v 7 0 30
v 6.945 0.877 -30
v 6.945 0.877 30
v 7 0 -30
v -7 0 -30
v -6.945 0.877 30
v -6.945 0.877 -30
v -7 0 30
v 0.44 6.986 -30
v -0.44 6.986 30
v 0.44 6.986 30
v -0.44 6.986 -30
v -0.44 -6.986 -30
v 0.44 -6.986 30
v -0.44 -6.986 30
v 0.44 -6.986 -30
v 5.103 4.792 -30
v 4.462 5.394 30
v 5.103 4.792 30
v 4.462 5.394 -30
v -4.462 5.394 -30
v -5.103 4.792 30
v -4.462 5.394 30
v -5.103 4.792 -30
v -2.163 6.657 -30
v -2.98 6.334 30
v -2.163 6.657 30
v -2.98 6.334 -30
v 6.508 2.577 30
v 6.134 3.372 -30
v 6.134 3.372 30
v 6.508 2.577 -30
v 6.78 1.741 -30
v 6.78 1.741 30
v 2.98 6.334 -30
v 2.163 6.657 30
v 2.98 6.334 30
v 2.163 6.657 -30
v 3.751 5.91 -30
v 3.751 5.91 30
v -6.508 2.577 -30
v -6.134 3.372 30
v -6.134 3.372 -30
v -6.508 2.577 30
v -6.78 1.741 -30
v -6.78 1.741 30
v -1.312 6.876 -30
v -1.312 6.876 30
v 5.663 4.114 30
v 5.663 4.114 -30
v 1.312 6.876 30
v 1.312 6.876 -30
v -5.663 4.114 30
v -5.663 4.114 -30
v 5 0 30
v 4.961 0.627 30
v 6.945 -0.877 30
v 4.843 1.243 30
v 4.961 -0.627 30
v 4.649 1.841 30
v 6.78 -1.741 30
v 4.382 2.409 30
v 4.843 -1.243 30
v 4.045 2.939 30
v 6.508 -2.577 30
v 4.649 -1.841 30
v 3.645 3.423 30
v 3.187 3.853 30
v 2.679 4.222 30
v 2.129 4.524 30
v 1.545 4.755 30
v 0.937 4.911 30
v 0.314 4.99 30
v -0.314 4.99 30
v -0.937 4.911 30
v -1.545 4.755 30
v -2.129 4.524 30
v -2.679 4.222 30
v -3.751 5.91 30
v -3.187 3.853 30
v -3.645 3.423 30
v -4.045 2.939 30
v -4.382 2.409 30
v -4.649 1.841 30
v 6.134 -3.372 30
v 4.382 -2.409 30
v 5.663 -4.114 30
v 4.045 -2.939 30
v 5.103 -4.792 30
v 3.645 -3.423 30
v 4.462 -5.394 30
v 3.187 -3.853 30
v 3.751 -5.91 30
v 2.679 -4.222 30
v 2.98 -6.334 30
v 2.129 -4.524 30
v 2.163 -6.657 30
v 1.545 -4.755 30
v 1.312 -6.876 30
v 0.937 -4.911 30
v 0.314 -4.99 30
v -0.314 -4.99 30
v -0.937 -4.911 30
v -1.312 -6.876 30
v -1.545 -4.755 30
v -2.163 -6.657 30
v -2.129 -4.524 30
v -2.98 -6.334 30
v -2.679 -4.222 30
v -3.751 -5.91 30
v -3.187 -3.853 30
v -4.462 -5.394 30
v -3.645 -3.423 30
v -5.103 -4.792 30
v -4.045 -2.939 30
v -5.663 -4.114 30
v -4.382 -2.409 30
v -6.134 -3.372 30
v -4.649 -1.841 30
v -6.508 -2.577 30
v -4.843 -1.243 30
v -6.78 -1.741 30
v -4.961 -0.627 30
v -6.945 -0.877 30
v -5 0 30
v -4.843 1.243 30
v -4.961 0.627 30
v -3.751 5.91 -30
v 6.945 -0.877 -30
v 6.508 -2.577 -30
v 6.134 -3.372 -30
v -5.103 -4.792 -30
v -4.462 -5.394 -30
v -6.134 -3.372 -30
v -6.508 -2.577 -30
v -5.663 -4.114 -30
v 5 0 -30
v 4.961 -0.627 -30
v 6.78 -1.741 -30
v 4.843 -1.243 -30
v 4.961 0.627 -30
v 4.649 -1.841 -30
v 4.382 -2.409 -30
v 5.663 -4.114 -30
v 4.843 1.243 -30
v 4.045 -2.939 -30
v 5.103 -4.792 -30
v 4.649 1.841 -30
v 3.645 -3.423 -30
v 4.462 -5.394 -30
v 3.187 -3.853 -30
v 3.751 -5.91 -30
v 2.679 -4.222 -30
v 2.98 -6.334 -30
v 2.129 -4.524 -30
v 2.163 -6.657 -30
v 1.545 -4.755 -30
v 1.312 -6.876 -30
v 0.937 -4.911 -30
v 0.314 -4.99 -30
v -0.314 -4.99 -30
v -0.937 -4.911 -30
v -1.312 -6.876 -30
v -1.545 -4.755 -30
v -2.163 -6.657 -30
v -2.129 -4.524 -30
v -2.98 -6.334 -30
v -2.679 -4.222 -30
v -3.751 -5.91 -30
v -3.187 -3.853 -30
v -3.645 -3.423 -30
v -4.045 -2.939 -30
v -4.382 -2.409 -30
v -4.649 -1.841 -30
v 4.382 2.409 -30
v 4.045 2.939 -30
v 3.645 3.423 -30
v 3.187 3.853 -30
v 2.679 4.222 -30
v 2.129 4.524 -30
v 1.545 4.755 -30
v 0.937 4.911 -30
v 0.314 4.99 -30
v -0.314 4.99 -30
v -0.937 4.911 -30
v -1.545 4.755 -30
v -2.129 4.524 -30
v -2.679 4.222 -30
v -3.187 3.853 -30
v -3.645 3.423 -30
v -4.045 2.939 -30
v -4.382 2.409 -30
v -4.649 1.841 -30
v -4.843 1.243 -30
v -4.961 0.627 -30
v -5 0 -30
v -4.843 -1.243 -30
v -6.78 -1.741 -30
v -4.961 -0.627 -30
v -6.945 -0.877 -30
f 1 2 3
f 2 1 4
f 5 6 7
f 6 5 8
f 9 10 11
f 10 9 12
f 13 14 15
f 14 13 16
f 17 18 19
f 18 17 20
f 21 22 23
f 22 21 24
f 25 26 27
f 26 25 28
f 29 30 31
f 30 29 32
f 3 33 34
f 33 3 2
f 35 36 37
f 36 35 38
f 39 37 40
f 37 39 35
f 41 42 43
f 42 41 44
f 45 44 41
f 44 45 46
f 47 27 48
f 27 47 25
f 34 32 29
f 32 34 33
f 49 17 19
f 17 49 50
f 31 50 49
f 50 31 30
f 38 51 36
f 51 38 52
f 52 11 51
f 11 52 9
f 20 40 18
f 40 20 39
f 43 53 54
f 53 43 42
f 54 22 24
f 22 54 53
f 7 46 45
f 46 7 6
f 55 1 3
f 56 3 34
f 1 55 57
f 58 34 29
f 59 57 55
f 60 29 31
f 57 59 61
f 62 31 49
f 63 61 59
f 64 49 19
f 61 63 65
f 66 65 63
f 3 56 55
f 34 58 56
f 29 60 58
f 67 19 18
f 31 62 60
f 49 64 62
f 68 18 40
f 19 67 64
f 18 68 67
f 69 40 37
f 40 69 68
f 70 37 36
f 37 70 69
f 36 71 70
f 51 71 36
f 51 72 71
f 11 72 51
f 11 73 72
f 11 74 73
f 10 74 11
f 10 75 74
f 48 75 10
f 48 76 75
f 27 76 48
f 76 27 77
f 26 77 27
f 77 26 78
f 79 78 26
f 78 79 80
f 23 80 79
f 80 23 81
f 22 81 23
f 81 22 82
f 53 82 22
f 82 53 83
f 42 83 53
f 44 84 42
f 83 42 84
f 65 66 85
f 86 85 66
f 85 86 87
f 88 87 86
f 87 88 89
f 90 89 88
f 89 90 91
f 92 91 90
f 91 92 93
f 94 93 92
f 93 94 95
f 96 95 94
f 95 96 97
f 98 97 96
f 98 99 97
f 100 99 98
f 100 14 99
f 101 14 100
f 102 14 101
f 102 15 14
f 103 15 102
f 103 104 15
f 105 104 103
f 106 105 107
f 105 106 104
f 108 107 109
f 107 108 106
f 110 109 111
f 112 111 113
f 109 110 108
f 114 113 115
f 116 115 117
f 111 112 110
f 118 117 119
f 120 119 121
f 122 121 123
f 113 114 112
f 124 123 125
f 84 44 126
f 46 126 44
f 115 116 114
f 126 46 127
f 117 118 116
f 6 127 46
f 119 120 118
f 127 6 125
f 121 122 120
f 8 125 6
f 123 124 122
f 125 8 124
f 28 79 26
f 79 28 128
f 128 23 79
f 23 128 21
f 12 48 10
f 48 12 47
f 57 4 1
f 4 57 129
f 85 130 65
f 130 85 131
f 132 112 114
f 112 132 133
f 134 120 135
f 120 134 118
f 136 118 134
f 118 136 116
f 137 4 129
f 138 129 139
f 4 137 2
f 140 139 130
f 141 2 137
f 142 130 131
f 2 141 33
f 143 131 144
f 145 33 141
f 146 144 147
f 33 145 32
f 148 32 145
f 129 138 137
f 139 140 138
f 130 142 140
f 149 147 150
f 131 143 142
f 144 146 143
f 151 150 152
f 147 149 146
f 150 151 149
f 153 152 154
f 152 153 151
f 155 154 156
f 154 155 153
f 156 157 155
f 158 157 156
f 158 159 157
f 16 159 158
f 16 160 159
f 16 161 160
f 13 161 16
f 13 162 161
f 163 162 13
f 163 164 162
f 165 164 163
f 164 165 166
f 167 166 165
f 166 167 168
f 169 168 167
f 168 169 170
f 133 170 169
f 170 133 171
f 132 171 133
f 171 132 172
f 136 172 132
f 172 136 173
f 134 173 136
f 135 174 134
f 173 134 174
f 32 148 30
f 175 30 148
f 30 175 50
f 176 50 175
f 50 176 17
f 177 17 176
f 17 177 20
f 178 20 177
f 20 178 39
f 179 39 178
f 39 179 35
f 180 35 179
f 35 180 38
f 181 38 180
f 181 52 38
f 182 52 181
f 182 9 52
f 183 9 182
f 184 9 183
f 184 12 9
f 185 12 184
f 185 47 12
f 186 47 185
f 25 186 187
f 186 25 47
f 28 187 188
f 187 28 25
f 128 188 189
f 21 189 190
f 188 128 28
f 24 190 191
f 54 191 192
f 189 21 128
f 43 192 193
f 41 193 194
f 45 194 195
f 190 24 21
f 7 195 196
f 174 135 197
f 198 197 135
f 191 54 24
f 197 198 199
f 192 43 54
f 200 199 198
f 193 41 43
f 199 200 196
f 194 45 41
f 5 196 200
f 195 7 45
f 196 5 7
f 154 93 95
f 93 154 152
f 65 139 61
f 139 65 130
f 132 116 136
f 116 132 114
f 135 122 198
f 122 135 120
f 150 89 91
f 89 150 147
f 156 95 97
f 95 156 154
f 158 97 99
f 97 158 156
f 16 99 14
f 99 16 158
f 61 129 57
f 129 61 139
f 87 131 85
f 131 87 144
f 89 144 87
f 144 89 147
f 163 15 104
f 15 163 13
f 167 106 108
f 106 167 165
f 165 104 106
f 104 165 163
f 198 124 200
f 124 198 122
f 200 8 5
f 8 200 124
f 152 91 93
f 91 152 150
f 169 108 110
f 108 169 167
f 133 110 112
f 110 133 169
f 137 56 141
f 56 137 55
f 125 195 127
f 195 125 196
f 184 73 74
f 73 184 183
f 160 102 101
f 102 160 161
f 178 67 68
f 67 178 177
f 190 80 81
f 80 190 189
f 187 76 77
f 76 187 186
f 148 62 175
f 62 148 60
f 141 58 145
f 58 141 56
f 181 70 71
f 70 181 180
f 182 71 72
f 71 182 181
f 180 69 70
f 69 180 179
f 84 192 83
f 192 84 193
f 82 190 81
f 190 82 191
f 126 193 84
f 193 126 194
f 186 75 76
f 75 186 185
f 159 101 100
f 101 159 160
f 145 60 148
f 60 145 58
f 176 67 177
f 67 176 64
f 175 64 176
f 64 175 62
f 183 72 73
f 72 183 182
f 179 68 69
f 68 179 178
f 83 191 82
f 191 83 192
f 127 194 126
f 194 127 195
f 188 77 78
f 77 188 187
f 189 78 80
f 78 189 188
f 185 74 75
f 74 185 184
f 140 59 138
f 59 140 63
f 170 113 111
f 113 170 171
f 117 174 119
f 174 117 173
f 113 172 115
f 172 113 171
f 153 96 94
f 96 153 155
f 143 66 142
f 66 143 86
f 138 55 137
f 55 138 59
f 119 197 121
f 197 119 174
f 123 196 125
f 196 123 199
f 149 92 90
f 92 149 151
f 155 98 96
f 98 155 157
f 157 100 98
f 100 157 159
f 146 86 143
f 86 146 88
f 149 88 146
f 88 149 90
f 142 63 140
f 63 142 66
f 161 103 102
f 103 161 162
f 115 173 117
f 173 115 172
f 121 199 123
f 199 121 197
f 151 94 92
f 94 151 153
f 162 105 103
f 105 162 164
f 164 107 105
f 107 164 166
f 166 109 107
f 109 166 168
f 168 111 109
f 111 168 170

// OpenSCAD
$fn = 50;


difference() {
	union() {
		translate(v = [0, 0, -30.0000000000]) {
			cylinder(h = 60, r = 7.0000000000);
		}
	}
	union() {
		translate(v = [0, 0, -100.0000000000]) {
			cylinder(h = 200, r = 5);
		}
	}
}
